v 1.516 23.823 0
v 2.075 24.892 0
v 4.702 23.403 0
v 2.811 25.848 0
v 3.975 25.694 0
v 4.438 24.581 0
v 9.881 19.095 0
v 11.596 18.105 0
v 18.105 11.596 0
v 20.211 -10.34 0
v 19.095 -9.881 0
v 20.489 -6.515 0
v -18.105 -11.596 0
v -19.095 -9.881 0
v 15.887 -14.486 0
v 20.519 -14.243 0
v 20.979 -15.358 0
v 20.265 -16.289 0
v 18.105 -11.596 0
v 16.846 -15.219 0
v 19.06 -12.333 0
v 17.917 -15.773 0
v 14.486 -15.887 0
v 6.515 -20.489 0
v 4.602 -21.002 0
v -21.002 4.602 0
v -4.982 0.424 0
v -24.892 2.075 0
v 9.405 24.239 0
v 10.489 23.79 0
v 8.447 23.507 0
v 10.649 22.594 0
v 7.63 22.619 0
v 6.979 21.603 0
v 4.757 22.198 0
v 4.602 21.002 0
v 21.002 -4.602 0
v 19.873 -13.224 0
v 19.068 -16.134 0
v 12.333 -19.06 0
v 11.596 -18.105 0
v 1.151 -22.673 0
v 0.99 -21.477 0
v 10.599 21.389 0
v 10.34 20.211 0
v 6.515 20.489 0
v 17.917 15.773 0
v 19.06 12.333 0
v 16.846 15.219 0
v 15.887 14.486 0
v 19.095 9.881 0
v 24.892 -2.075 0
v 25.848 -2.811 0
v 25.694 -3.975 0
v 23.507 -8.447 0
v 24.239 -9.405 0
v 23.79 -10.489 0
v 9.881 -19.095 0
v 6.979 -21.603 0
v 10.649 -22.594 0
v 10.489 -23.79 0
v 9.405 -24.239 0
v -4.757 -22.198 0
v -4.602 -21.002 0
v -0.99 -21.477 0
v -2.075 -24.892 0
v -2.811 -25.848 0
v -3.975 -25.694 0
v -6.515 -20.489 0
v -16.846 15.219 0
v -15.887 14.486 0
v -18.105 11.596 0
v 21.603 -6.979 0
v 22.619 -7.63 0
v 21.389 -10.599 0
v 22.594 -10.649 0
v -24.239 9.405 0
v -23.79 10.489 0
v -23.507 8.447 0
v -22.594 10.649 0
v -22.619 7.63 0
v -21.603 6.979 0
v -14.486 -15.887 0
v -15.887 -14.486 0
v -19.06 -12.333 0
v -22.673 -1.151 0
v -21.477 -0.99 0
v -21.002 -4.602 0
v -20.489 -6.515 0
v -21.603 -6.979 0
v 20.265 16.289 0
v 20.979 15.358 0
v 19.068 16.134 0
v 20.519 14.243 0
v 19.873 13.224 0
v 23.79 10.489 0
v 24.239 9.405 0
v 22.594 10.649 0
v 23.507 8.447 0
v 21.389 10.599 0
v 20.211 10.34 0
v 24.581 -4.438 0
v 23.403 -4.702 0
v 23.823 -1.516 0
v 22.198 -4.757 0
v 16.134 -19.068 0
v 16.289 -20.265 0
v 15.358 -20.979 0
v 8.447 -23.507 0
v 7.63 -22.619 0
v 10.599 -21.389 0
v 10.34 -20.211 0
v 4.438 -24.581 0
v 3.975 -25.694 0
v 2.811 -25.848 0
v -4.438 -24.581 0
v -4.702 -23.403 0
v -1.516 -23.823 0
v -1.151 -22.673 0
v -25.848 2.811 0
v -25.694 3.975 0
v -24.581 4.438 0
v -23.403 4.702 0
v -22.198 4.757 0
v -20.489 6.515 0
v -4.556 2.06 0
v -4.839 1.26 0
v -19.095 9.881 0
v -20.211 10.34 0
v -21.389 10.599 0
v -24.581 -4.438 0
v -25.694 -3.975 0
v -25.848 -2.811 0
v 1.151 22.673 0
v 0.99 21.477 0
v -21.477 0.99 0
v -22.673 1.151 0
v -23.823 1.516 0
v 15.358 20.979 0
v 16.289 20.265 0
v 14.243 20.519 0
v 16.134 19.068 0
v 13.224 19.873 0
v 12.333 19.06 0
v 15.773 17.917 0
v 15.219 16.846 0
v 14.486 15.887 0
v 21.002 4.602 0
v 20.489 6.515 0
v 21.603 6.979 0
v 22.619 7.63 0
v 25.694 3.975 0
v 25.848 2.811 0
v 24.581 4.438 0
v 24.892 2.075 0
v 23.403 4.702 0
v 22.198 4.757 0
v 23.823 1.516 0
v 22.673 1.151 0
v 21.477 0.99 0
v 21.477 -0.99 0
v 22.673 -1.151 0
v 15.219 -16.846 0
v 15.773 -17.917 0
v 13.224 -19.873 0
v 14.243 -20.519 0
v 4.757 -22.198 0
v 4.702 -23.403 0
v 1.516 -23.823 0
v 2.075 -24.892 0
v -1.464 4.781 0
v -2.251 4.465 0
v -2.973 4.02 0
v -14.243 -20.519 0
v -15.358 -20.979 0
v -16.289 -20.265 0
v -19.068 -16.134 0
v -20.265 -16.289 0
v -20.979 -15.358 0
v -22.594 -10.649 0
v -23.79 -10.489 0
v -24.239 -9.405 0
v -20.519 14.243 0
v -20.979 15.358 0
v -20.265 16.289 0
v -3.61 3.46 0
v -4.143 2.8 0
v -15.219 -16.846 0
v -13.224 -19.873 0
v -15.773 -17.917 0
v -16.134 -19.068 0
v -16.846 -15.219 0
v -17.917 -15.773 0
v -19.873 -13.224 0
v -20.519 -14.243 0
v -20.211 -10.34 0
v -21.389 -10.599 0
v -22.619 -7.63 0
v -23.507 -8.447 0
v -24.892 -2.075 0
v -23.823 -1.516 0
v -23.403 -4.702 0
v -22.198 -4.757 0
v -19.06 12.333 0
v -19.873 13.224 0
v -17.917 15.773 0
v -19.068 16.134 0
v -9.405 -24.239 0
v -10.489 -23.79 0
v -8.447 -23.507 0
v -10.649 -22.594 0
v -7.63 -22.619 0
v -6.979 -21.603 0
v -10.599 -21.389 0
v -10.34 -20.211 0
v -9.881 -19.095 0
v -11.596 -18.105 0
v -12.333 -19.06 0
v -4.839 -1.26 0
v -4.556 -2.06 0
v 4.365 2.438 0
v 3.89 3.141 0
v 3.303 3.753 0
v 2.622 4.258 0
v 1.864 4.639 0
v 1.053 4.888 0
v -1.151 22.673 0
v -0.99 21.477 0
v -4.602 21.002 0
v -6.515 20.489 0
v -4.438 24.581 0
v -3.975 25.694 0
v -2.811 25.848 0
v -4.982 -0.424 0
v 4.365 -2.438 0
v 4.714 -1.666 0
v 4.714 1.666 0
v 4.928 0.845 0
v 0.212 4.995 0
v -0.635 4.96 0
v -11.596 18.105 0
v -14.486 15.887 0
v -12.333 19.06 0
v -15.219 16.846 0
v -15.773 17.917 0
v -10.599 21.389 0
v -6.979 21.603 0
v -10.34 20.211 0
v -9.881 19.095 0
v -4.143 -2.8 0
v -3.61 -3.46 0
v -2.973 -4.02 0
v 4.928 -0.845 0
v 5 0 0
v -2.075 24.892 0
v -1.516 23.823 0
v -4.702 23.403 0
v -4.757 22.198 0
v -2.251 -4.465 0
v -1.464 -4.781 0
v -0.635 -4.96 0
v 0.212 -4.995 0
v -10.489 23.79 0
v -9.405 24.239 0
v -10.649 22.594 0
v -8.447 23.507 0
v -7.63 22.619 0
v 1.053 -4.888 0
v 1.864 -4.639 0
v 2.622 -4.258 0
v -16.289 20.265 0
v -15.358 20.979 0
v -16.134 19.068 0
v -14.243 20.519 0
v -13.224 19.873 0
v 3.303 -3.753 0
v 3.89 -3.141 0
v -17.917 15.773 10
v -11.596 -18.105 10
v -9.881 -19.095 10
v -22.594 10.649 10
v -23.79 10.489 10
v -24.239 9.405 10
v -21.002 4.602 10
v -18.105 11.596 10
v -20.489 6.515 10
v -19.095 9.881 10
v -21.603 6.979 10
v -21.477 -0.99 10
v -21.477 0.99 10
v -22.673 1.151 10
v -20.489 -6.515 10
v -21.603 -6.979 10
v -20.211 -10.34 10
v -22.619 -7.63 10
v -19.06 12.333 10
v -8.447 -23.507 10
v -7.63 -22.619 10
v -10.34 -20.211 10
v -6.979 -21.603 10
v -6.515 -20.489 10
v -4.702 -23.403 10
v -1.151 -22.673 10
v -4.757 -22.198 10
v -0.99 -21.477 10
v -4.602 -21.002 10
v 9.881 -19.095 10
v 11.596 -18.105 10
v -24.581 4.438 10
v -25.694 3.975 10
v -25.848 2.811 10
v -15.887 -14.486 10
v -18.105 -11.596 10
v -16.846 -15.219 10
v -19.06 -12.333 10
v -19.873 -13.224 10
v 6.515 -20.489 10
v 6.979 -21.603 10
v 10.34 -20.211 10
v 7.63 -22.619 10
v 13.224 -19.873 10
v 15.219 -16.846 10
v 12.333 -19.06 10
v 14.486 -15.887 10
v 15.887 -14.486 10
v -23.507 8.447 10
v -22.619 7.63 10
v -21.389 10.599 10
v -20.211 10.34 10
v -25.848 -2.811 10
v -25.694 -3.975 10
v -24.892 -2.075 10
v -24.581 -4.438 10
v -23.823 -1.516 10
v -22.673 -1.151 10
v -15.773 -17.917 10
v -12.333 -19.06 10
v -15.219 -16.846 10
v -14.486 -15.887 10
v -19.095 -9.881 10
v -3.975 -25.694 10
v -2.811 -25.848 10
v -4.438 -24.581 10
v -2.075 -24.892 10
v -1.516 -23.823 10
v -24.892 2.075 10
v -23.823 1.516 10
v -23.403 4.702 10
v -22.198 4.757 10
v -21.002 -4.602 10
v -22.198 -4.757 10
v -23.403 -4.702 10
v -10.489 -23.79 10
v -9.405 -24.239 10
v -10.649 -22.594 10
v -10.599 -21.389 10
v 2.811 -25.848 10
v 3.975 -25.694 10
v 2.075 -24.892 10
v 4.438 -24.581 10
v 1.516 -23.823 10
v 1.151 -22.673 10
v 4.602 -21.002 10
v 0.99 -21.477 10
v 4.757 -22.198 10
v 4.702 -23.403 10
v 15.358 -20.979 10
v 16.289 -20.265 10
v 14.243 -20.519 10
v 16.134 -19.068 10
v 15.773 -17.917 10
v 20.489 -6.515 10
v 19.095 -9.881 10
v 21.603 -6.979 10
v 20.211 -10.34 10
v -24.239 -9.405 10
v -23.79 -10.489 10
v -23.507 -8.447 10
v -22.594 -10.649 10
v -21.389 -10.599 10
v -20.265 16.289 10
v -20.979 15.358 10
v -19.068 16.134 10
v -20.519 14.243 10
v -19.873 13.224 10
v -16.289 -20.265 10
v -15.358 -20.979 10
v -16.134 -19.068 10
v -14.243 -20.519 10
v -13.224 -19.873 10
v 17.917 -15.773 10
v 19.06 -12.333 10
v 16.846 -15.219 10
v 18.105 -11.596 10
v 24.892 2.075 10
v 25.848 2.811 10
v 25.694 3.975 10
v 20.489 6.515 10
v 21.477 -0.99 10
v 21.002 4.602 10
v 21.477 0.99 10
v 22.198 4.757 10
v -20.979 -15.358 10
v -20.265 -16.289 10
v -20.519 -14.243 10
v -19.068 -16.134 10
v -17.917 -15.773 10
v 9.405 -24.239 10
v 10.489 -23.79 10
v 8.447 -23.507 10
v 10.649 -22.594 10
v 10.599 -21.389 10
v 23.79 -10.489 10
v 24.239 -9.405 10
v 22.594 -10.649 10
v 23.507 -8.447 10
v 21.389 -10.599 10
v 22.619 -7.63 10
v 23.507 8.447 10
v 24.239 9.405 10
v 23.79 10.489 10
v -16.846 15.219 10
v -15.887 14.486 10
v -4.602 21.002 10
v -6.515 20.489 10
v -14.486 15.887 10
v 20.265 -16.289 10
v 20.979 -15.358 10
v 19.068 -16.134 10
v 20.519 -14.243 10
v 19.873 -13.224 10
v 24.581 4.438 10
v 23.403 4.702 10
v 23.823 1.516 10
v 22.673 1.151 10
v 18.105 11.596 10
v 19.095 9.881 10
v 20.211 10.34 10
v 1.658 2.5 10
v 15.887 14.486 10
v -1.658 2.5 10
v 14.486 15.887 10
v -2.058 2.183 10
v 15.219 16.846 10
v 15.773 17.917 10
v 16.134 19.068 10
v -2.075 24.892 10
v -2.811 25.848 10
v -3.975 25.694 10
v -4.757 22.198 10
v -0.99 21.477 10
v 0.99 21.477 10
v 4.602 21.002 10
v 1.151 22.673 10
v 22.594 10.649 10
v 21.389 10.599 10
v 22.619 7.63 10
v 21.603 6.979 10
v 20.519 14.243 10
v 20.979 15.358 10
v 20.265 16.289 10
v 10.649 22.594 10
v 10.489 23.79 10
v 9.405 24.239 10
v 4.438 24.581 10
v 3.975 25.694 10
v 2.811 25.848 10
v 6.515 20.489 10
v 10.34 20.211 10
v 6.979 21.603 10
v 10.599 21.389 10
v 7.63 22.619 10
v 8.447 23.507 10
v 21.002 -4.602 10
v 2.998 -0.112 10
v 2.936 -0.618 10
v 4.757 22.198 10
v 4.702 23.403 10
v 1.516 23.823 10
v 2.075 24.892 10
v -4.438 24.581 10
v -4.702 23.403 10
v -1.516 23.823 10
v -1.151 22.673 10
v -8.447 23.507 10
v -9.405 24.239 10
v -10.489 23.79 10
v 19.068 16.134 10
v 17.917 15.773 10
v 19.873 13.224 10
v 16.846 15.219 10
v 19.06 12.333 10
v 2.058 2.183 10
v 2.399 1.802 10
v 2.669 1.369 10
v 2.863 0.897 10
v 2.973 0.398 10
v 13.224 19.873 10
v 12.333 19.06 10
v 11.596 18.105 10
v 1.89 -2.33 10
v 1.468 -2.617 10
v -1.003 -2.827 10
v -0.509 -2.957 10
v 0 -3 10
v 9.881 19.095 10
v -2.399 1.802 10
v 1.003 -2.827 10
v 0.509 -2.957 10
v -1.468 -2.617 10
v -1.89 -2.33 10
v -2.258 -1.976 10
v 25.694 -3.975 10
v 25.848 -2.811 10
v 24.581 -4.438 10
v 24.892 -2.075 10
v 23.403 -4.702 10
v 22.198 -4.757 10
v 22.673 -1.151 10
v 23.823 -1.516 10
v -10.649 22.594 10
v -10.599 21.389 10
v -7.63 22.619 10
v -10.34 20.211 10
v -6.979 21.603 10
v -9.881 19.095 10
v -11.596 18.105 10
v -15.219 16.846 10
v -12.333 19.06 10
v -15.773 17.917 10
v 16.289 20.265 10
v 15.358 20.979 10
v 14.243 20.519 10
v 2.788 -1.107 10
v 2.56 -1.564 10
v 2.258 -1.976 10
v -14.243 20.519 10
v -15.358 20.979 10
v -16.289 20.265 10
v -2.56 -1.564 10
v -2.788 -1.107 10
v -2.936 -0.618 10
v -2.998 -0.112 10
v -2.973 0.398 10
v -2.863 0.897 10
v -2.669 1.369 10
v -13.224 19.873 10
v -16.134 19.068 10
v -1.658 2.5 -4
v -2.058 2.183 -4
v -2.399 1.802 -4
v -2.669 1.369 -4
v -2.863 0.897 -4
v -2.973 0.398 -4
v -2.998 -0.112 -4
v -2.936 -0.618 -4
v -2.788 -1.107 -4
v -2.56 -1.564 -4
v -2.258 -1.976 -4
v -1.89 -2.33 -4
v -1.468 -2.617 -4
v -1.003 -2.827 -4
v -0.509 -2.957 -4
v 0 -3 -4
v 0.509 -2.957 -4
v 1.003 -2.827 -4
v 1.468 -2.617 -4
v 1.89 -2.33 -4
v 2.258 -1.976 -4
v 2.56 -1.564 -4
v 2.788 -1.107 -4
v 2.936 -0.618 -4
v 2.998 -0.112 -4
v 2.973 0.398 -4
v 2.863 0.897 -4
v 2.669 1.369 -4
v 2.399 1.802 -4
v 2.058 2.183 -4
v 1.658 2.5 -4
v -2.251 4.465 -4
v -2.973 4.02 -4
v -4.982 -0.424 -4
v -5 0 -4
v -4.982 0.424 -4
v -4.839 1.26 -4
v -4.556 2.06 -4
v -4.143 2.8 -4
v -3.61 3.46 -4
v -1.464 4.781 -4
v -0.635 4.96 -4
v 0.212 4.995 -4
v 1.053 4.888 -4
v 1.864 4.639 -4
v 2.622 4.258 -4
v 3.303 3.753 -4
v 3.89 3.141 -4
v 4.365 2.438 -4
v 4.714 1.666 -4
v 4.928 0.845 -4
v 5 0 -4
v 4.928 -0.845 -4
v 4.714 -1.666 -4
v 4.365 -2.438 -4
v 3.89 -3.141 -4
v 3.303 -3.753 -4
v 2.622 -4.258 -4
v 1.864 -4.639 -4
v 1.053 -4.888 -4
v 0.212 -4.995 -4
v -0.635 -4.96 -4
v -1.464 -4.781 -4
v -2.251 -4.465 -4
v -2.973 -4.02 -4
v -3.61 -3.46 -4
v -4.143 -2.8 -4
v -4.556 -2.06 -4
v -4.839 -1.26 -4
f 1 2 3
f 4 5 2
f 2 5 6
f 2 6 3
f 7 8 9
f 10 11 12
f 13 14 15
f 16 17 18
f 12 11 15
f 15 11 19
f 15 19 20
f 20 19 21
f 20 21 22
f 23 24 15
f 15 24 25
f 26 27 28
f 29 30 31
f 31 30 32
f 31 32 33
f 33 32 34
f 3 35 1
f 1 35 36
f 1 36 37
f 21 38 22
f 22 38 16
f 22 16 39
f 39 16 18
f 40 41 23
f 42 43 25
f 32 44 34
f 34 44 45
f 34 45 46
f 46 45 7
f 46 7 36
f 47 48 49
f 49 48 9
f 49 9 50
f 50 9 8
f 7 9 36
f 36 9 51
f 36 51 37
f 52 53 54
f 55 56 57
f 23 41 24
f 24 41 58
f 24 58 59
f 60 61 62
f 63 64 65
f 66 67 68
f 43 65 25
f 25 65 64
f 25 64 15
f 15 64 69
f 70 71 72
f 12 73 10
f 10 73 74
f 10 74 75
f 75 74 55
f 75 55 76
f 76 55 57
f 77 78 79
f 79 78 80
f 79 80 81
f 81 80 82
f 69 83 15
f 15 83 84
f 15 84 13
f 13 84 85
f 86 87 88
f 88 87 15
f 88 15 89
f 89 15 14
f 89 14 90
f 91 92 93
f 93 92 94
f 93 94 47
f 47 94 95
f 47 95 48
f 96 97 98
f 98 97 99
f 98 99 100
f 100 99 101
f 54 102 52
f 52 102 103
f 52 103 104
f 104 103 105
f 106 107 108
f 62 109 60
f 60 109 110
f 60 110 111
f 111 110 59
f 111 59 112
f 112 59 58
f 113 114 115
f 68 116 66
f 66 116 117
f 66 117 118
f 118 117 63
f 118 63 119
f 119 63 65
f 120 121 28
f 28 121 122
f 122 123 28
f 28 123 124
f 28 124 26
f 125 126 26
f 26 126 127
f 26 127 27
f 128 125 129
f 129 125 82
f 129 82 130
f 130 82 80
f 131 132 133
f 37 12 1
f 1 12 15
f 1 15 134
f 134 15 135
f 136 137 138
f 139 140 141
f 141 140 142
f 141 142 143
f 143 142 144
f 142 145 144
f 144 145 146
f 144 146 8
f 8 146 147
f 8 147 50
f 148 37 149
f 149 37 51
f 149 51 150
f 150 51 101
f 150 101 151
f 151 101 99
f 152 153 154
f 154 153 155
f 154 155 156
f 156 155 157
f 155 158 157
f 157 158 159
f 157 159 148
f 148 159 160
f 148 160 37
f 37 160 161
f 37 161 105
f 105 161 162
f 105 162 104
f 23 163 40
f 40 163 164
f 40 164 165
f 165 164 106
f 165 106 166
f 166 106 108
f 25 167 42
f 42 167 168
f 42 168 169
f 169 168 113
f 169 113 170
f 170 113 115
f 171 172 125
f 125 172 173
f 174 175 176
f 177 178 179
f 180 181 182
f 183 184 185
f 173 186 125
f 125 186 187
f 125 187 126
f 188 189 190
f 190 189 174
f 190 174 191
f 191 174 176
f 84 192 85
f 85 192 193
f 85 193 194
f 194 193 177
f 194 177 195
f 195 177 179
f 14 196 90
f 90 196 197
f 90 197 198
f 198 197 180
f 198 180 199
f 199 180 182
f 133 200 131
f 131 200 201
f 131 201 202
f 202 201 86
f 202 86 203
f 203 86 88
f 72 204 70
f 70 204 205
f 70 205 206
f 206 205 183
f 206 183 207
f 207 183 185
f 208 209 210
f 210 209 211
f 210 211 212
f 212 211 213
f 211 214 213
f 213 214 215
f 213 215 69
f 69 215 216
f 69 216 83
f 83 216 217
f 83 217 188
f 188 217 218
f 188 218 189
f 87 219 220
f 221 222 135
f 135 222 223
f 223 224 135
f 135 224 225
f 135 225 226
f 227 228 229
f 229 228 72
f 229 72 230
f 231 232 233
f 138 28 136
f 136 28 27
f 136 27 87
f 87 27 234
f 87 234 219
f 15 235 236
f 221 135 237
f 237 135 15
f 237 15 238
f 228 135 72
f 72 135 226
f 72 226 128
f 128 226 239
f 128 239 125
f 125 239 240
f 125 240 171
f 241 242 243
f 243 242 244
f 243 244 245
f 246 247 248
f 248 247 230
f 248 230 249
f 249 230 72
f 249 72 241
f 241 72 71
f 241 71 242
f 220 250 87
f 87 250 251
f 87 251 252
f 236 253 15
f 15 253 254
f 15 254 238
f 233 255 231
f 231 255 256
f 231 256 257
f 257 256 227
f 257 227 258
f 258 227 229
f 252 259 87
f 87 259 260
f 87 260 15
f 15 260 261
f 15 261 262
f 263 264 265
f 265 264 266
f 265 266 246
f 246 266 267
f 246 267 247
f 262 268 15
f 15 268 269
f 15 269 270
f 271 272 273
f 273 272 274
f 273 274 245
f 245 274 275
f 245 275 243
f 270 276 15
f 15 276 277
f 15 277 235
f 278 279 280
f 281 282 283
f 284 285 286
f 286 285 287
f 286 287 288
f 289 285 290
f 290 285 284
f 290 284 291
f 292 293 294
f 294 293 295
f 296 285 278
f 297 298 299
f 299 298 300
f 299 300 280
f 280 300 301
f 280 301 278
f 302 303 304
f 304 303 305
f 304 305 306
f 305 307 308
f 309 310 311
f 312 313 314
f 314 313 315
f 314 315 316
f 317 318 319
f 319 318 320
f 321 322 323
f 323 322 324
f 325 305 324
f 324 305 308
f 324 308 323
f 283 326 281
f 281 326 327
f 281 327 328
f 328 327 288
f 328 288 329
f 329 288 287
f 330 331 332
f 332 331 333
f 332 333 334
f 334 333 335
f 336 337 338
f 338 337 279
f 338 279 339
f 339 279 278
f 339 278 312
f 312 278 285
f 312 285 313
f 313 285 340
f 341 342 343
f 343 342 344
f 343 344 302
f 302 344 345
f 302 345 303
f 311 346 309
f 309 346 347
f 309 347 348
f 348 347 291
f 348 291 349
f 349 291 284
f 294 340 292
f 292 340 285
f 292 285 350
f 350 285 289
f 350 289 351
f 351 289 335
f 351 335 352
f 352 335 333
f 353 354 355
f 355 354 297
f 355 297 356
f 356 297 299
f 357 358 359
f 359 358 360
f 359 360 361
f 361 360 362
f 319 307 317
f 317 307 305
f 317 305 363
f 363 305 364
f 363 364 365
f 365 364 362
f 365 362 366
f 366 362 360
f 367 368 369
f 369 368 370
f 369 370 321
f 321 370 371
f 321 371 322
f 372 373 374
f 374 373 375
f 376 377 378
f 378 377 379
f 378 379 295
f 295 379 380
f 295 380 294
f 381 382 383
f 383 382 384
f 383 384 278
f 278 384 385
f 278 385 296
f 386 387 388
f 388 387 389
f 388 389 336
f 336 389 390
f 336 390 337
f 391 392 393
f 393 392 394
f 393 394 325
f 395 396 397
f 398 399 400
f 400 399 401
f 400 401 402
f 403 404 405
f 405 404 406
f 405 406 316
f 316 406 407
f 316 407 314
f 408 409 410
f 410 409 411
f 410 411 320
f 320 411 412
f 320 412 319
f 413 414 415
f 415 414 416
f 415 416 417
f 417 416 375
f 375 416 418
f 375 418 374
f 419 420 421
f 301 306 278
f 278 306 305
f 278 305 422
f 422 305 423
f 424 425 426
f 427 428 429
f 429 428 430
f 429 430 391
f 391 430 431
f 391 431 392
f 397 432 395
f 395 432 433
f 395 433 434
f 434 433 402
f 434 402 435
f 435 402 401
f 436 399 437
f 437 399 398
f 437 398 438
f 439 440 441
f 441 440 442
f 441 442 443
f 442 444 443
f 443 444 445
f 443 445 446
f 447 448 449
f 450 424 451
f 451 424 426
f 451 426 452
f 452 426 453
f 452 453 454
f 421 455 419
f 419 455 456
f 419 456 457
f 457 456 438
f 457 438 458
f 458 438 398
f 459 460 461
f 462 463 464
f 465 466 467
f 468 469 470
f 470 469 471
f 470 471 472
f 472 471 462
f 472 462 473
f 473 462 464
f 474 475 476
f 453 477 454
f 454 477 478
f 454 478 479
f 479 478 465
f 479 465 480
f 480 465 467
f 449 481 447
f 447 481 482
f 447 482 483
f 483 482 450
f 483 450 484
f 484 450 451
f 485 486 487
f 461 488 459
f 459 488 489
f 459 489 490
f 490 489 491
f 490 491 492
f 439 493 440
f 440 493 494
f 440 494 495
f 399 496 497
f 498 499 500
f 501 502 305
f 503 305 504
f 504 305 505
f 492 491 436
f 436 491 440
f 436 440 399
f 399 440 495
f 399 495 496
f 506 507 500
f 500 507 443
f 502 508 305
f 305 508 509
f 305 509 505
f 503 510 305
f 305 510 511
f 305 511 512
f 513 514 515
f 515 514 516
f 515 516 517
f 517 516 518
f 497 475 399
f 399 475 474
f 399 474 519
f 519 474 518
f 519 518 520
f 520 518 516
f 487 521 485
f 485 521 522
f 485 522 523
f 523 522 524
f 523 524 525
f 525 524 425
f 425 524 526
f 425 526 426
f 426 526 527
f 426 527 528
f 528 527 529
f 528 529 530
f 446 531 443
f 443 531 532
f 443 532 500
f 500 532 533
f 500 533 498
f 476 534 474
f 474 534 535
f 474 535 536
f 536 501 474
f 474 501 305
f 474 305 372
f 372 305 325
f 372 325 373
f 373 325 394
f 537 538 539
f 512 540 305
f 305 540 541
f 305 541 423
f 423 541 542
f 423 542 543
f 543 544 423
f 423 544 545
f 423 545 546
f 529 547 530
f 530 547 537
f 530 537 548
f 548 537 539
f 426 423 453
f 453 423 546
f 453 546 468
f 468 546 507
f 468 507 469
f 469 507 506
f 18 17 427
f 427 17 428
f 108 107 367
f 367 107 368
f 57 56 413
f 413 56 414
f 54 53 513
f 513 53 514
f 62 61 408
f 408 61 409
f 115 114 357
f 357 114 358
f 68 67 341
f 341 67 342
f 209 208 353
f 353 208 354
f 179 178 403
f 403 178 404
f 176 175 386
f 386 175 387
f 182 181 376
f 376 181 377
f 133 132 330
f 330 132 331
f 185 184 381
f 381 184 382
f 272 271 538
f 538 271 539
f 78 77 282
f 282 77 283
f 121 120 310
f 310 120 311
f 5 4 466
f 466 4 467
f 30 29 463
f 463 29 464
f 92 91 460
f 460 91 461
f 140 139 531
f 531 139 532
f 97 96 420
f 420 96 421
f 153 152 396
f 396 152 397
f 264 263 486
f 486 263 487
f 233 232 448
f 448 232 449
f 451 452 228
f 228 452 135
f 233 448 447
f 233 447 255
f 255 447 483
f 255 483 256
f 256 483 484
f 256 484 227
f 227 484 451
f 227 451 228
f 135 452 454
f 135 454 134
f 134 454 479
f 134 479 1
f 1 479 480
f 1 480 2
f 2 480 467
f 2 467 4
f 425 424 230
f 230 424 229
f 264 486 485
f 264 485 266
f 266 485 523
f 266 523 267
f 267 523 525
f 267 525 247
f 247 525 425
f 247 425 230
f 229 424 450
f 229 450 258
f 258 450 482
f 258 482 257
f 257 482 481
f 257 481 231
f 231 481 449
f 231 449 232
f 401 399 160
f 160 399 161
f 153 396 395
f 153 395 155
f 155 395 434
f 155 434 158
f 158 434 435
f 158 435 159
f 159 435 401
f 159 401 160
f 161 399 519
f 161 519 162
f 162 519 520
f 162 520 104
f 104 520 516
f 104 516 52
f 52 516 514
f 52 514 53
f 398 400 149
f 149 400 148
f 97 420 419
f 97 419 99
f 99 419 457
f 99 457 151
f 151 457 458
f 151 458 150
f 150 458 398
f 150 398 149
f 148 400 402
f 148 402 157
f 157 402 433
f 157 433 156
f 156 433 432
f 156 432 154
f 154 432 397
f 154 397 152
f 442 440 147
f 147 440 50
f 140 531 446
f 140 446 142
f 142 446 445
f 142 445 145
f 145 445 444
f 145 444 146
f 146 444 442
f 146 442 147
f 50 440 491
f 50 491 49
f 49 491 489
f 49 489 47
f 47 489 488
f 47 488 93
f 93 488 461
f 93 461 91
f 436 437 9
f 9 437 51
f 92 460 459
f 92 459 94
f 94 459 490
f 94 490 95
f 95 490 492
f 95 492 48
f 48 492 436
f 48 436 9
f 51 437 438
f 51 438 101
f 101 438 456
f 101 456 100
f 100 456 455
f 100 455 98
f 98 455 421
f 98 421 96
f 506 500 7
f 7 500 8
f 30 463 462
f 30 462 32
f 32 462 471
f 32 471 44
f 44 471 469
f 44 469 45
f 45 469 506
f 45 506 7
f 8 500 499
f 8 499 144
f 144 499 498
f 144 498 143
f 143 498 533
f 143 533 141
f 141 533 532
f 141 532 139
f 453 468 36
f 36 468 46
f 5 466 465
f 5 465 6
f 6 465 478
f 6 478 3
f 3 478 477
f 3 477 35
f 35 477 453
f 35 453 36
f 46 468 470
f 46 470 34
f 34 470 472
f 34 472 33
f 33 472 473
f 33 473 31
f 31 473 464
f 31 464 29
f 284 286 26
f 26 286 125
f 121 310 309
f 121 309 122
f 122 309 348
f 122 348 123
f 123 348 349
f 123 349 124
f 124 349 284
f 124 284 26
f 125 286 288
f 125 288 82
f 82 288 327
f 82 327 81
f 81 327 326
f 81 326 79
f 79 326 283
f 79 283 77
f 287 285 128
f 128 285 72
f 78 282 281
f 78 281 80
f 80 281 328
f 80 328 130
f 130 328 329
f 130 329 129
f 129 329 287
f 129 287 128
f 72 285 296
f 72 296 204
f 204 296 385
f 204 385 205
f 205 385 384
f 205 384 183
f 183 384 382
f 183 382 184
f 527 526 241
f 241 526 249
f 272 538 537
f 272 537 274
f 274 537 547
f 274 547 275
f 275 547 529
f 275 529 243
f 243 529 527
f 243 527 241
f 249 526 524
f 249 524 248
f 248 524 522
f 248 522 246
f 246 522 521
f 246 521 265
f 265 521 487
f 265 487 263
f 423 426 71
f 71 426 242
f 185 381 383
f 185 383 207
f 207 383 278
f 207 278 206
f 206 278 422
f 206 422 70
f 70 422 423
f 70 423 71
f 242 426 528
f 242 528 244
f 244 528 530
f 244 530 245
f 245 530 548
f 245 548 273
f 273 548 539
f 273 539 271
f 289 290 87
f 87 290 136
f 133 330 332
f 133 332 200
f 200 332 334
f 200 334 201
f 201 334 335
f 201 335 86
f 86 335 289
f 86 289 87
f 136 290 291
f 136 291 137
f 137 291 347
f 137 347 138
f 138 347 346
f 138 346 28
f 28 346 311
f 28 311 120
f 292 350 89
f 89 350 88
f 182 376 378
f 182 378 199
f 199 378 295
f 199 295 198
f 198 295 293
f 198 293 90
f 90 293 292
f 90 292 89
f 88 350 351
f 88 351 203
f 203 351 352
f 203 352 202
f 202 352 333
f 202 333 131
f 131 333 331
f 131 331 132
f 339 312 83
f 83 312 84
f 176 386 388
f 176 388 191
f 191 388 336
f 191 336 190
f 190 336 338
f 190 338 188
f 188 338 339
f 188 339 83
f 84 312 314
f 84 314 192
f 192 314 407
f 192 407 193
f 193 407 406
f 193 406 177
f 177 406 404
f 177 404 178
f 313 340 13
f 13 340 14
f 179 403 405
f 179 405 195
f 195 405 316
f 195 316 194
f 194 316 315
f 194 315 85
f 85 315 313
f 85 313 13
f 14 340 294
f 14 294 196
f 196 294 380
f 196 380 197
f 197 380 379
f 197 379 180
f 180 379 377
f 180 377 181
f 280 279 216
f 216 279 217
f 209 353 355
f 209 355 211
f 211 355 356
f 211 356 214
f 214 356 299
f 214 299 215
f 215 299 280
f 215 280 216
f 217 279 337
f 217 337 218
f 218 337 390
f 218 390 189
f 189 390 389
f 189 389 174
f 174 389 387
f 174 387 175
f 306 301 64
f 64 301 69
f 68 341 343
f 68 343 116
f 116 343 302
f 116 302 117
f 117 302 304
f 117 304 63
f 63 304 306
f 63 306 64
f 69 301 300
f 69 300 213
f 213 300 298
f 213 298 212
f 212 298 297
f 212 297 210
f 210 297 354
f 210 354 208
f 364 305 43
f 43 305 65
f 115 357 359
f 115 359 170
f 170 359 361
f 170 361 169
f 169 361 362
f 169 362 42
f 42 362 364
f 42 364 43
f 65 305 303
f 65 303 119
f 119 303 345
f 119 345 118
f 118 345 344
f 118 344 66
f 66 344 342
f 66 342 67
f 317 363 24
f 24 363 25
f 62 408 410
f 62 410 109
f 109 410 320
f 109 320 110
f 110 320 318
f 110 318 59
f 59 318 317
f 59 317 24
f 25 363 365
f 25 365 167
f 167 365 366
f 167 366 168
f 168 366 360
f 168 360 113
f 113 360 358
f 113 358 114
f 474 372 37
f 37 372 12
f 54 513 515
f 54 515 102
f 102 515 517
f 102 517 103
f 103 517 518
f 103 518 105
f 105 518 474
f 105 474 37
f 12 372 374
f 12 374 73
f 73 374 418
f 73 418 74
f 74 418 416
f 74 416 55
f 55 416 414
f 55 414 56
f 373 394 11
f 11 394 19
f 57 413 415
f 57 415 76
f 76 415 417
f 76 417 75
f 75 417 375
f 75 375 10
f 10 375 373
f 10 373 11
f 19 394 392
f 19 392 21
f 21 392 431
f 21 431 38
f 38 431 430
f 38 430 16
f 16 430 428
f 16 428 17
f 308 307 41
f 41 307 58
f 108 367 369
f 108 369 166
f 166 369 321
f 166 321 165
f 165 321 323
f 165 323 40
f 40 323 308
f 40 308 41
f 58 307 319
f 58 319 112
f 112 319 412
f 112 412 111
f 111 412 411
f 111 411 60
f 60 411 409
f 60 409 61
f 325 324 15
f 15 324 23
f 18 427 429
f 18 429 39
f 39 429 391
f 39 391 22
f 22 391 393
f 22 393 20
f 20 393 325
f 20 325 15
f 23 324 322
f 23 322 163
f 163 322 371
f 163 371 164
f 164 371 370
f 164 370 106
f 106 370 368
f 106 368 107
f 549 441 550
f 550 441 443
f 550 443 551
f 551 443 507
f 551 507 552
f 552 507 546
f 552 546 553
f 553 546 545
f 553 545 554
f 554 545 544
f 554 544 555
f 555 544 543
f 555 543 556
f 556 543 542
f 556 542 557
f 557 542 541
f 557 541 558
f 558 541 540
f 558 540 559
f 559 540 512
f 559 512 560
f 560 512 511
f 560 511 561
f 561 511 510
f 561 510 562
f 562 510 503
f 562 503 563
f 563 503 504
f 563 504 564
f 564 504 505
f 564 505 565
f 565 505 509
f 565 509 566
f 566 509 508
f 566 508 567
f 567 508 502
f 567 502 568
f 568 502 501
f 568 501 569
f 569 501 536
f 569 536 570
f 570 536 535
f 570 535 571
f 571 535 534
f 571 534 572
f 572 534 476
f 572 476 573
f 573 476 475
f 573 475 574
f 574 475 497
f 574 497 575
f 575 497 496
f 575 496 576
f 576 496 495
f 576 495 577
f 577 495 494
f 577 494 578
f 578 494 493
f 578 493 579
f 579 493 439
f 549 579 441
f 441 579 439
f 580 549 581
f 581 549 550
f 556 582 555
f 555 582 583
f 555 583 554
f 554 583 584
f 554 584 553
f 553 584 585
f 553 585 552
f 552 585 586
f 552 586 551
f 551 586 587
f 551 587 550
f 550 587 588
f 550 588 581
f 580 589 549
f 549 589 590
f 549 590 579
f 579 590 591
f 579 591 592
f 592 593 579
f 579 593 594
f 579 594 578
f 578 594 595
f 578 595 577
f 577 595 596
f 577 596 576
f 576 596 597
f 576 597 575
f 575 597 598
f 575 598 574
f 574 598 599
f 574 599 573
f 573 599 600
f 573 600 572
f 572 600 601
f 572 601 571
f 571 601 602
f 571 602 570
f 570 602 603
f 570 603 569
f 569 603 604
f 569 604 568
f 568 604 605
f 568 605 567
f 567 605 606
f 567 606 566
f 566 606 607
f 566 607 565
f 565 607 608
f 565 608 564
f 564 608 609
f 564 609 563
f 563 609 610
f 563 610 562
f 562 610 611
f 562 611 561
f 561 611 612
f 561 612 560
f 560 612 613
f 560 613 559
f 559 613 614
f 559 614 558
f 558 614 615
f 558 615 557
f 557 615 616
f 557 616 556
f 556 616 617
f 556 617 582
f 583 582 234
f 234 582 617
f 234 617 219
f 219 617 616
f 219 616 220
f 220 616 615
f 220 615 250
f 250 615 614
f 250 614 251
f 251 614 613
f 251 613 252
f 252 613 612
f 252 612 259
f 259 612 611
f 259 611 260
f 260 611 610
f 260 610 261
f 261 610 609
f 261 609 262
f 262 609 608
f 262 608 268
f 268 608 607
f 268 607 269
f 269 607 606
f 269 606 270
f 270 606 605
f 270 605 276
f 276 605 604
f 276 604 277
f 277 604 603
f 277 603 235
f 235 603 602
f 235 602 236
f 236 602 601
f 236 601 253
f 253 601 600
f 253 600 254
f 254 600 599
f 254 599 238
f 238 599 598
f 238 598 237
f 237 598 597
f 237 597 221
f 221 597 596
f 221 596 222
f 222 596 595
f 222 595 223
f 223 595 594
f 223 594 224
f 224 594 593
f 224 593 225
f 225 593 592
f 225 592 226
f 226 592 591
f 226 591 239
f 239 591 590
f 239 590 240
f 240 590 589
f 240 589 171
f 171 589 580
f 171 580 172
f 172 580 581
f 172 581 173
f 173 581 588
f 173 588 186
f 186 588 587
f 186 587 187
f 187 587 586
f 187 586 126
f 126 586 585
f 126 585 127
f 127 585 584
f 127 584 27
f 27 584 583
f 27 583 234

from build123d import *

# Parameters (mm, degrees)
SKETCH6_R           = 26
BOSS_EXTRUDE1_DEPTH = 10
CUT_EXTRUDE3_DEPTH  = 39.105117767
CIRPATTERN2_COUNT   = 24
CUT_EXTRUDE4_DEPTH  = 38.897178127
SKETCH9_R           = 5
BOSS_EXTRUDE2_DEPTH = 4


with BuildPart() as part:
    # Sketch6 → Boss-Extrude1 (new body)
    with BuildSketch(Plane.XY):
        Circle(SKETCH6_R)
    extrude(amount=BOSS_EXTRUDE1_DEPTH)

    # Sketch7 → Cut-Extrude3 (cut, through all)
    with BuildSketch(Plane.XY.offset(10)):
        with BuildLine():
            ThreePointArc((-0.990237597, 21.477183929), (-1.515765167, 23.822734617), (-2.811039843, 25.847592828))
            ThreePointArc((-2.811039843, 25.847592828), (0, 26), (2.811039843, 25.847592828))
            ThreePointArc((2.811039843, 25.847592828), (1.515765167, 23.822734617), (0.990237597, 21.477183929))
            ThreePointArc((0.990237597, 21.477183929), (0, 21.5), (-0.990237597, 21.477183929))
        make_face()
    cut_extrude3 = extrude(amount=-CUT_EXTRUDE3_DEPTH, mode=Mode.SUBTRACT)

    # CirPattern2: Cut-Extrude3 ×24 about axis
    cirpattern2_axis = Axis((0, 0, 0), (0, 0, 1))
    for i in range(1, CIRPATTERN2_COUNT):
        add(cut_extrude3.rotate(cirpattern2_axis, i * 360 / CIRPATTERN2_COUNT), mode=Mode.SUBTRACT)

    # Sketch8 → Cut-Extrude4 (cut, through all)
    with BuildSketch(Plane.XY.offset(10)):
        with BuildLine():
            Line((-1.658312395, 2.5), (1.658312395, 2.5))
            ThreePointArc((1.658312395, 2.5), (0, -3), (-1.658312395, 2.5))
        make_face()
    extrude(amount=-CUT_EXTRUDE4_DEPTH, mode=Mode.SUBTRACT)

    # Sketch9 → Boss-Extrude2 (add)
    with BuildSketch(Plane(origin=(0, 0, 0), x_dir=(-1, 0, 0), z_dir=(0, 0, -1))):
        with Locations(Location((0, 0, 0), (0, 0, 180))):
            Circle(SKETCH9_R)
        with BuildLine():
            Line((-1.658312395, 2.5), (1.658312395, 2.5))
            ThreePointArc((1.658312395, 2.5), (0, -3), (-1.658312395, 2.5))
        make_face(mode=Mode.SUBTRACT)
    extrude(amount=BOSS_EXTRUDE2_DEPTH)


solid = part.part
